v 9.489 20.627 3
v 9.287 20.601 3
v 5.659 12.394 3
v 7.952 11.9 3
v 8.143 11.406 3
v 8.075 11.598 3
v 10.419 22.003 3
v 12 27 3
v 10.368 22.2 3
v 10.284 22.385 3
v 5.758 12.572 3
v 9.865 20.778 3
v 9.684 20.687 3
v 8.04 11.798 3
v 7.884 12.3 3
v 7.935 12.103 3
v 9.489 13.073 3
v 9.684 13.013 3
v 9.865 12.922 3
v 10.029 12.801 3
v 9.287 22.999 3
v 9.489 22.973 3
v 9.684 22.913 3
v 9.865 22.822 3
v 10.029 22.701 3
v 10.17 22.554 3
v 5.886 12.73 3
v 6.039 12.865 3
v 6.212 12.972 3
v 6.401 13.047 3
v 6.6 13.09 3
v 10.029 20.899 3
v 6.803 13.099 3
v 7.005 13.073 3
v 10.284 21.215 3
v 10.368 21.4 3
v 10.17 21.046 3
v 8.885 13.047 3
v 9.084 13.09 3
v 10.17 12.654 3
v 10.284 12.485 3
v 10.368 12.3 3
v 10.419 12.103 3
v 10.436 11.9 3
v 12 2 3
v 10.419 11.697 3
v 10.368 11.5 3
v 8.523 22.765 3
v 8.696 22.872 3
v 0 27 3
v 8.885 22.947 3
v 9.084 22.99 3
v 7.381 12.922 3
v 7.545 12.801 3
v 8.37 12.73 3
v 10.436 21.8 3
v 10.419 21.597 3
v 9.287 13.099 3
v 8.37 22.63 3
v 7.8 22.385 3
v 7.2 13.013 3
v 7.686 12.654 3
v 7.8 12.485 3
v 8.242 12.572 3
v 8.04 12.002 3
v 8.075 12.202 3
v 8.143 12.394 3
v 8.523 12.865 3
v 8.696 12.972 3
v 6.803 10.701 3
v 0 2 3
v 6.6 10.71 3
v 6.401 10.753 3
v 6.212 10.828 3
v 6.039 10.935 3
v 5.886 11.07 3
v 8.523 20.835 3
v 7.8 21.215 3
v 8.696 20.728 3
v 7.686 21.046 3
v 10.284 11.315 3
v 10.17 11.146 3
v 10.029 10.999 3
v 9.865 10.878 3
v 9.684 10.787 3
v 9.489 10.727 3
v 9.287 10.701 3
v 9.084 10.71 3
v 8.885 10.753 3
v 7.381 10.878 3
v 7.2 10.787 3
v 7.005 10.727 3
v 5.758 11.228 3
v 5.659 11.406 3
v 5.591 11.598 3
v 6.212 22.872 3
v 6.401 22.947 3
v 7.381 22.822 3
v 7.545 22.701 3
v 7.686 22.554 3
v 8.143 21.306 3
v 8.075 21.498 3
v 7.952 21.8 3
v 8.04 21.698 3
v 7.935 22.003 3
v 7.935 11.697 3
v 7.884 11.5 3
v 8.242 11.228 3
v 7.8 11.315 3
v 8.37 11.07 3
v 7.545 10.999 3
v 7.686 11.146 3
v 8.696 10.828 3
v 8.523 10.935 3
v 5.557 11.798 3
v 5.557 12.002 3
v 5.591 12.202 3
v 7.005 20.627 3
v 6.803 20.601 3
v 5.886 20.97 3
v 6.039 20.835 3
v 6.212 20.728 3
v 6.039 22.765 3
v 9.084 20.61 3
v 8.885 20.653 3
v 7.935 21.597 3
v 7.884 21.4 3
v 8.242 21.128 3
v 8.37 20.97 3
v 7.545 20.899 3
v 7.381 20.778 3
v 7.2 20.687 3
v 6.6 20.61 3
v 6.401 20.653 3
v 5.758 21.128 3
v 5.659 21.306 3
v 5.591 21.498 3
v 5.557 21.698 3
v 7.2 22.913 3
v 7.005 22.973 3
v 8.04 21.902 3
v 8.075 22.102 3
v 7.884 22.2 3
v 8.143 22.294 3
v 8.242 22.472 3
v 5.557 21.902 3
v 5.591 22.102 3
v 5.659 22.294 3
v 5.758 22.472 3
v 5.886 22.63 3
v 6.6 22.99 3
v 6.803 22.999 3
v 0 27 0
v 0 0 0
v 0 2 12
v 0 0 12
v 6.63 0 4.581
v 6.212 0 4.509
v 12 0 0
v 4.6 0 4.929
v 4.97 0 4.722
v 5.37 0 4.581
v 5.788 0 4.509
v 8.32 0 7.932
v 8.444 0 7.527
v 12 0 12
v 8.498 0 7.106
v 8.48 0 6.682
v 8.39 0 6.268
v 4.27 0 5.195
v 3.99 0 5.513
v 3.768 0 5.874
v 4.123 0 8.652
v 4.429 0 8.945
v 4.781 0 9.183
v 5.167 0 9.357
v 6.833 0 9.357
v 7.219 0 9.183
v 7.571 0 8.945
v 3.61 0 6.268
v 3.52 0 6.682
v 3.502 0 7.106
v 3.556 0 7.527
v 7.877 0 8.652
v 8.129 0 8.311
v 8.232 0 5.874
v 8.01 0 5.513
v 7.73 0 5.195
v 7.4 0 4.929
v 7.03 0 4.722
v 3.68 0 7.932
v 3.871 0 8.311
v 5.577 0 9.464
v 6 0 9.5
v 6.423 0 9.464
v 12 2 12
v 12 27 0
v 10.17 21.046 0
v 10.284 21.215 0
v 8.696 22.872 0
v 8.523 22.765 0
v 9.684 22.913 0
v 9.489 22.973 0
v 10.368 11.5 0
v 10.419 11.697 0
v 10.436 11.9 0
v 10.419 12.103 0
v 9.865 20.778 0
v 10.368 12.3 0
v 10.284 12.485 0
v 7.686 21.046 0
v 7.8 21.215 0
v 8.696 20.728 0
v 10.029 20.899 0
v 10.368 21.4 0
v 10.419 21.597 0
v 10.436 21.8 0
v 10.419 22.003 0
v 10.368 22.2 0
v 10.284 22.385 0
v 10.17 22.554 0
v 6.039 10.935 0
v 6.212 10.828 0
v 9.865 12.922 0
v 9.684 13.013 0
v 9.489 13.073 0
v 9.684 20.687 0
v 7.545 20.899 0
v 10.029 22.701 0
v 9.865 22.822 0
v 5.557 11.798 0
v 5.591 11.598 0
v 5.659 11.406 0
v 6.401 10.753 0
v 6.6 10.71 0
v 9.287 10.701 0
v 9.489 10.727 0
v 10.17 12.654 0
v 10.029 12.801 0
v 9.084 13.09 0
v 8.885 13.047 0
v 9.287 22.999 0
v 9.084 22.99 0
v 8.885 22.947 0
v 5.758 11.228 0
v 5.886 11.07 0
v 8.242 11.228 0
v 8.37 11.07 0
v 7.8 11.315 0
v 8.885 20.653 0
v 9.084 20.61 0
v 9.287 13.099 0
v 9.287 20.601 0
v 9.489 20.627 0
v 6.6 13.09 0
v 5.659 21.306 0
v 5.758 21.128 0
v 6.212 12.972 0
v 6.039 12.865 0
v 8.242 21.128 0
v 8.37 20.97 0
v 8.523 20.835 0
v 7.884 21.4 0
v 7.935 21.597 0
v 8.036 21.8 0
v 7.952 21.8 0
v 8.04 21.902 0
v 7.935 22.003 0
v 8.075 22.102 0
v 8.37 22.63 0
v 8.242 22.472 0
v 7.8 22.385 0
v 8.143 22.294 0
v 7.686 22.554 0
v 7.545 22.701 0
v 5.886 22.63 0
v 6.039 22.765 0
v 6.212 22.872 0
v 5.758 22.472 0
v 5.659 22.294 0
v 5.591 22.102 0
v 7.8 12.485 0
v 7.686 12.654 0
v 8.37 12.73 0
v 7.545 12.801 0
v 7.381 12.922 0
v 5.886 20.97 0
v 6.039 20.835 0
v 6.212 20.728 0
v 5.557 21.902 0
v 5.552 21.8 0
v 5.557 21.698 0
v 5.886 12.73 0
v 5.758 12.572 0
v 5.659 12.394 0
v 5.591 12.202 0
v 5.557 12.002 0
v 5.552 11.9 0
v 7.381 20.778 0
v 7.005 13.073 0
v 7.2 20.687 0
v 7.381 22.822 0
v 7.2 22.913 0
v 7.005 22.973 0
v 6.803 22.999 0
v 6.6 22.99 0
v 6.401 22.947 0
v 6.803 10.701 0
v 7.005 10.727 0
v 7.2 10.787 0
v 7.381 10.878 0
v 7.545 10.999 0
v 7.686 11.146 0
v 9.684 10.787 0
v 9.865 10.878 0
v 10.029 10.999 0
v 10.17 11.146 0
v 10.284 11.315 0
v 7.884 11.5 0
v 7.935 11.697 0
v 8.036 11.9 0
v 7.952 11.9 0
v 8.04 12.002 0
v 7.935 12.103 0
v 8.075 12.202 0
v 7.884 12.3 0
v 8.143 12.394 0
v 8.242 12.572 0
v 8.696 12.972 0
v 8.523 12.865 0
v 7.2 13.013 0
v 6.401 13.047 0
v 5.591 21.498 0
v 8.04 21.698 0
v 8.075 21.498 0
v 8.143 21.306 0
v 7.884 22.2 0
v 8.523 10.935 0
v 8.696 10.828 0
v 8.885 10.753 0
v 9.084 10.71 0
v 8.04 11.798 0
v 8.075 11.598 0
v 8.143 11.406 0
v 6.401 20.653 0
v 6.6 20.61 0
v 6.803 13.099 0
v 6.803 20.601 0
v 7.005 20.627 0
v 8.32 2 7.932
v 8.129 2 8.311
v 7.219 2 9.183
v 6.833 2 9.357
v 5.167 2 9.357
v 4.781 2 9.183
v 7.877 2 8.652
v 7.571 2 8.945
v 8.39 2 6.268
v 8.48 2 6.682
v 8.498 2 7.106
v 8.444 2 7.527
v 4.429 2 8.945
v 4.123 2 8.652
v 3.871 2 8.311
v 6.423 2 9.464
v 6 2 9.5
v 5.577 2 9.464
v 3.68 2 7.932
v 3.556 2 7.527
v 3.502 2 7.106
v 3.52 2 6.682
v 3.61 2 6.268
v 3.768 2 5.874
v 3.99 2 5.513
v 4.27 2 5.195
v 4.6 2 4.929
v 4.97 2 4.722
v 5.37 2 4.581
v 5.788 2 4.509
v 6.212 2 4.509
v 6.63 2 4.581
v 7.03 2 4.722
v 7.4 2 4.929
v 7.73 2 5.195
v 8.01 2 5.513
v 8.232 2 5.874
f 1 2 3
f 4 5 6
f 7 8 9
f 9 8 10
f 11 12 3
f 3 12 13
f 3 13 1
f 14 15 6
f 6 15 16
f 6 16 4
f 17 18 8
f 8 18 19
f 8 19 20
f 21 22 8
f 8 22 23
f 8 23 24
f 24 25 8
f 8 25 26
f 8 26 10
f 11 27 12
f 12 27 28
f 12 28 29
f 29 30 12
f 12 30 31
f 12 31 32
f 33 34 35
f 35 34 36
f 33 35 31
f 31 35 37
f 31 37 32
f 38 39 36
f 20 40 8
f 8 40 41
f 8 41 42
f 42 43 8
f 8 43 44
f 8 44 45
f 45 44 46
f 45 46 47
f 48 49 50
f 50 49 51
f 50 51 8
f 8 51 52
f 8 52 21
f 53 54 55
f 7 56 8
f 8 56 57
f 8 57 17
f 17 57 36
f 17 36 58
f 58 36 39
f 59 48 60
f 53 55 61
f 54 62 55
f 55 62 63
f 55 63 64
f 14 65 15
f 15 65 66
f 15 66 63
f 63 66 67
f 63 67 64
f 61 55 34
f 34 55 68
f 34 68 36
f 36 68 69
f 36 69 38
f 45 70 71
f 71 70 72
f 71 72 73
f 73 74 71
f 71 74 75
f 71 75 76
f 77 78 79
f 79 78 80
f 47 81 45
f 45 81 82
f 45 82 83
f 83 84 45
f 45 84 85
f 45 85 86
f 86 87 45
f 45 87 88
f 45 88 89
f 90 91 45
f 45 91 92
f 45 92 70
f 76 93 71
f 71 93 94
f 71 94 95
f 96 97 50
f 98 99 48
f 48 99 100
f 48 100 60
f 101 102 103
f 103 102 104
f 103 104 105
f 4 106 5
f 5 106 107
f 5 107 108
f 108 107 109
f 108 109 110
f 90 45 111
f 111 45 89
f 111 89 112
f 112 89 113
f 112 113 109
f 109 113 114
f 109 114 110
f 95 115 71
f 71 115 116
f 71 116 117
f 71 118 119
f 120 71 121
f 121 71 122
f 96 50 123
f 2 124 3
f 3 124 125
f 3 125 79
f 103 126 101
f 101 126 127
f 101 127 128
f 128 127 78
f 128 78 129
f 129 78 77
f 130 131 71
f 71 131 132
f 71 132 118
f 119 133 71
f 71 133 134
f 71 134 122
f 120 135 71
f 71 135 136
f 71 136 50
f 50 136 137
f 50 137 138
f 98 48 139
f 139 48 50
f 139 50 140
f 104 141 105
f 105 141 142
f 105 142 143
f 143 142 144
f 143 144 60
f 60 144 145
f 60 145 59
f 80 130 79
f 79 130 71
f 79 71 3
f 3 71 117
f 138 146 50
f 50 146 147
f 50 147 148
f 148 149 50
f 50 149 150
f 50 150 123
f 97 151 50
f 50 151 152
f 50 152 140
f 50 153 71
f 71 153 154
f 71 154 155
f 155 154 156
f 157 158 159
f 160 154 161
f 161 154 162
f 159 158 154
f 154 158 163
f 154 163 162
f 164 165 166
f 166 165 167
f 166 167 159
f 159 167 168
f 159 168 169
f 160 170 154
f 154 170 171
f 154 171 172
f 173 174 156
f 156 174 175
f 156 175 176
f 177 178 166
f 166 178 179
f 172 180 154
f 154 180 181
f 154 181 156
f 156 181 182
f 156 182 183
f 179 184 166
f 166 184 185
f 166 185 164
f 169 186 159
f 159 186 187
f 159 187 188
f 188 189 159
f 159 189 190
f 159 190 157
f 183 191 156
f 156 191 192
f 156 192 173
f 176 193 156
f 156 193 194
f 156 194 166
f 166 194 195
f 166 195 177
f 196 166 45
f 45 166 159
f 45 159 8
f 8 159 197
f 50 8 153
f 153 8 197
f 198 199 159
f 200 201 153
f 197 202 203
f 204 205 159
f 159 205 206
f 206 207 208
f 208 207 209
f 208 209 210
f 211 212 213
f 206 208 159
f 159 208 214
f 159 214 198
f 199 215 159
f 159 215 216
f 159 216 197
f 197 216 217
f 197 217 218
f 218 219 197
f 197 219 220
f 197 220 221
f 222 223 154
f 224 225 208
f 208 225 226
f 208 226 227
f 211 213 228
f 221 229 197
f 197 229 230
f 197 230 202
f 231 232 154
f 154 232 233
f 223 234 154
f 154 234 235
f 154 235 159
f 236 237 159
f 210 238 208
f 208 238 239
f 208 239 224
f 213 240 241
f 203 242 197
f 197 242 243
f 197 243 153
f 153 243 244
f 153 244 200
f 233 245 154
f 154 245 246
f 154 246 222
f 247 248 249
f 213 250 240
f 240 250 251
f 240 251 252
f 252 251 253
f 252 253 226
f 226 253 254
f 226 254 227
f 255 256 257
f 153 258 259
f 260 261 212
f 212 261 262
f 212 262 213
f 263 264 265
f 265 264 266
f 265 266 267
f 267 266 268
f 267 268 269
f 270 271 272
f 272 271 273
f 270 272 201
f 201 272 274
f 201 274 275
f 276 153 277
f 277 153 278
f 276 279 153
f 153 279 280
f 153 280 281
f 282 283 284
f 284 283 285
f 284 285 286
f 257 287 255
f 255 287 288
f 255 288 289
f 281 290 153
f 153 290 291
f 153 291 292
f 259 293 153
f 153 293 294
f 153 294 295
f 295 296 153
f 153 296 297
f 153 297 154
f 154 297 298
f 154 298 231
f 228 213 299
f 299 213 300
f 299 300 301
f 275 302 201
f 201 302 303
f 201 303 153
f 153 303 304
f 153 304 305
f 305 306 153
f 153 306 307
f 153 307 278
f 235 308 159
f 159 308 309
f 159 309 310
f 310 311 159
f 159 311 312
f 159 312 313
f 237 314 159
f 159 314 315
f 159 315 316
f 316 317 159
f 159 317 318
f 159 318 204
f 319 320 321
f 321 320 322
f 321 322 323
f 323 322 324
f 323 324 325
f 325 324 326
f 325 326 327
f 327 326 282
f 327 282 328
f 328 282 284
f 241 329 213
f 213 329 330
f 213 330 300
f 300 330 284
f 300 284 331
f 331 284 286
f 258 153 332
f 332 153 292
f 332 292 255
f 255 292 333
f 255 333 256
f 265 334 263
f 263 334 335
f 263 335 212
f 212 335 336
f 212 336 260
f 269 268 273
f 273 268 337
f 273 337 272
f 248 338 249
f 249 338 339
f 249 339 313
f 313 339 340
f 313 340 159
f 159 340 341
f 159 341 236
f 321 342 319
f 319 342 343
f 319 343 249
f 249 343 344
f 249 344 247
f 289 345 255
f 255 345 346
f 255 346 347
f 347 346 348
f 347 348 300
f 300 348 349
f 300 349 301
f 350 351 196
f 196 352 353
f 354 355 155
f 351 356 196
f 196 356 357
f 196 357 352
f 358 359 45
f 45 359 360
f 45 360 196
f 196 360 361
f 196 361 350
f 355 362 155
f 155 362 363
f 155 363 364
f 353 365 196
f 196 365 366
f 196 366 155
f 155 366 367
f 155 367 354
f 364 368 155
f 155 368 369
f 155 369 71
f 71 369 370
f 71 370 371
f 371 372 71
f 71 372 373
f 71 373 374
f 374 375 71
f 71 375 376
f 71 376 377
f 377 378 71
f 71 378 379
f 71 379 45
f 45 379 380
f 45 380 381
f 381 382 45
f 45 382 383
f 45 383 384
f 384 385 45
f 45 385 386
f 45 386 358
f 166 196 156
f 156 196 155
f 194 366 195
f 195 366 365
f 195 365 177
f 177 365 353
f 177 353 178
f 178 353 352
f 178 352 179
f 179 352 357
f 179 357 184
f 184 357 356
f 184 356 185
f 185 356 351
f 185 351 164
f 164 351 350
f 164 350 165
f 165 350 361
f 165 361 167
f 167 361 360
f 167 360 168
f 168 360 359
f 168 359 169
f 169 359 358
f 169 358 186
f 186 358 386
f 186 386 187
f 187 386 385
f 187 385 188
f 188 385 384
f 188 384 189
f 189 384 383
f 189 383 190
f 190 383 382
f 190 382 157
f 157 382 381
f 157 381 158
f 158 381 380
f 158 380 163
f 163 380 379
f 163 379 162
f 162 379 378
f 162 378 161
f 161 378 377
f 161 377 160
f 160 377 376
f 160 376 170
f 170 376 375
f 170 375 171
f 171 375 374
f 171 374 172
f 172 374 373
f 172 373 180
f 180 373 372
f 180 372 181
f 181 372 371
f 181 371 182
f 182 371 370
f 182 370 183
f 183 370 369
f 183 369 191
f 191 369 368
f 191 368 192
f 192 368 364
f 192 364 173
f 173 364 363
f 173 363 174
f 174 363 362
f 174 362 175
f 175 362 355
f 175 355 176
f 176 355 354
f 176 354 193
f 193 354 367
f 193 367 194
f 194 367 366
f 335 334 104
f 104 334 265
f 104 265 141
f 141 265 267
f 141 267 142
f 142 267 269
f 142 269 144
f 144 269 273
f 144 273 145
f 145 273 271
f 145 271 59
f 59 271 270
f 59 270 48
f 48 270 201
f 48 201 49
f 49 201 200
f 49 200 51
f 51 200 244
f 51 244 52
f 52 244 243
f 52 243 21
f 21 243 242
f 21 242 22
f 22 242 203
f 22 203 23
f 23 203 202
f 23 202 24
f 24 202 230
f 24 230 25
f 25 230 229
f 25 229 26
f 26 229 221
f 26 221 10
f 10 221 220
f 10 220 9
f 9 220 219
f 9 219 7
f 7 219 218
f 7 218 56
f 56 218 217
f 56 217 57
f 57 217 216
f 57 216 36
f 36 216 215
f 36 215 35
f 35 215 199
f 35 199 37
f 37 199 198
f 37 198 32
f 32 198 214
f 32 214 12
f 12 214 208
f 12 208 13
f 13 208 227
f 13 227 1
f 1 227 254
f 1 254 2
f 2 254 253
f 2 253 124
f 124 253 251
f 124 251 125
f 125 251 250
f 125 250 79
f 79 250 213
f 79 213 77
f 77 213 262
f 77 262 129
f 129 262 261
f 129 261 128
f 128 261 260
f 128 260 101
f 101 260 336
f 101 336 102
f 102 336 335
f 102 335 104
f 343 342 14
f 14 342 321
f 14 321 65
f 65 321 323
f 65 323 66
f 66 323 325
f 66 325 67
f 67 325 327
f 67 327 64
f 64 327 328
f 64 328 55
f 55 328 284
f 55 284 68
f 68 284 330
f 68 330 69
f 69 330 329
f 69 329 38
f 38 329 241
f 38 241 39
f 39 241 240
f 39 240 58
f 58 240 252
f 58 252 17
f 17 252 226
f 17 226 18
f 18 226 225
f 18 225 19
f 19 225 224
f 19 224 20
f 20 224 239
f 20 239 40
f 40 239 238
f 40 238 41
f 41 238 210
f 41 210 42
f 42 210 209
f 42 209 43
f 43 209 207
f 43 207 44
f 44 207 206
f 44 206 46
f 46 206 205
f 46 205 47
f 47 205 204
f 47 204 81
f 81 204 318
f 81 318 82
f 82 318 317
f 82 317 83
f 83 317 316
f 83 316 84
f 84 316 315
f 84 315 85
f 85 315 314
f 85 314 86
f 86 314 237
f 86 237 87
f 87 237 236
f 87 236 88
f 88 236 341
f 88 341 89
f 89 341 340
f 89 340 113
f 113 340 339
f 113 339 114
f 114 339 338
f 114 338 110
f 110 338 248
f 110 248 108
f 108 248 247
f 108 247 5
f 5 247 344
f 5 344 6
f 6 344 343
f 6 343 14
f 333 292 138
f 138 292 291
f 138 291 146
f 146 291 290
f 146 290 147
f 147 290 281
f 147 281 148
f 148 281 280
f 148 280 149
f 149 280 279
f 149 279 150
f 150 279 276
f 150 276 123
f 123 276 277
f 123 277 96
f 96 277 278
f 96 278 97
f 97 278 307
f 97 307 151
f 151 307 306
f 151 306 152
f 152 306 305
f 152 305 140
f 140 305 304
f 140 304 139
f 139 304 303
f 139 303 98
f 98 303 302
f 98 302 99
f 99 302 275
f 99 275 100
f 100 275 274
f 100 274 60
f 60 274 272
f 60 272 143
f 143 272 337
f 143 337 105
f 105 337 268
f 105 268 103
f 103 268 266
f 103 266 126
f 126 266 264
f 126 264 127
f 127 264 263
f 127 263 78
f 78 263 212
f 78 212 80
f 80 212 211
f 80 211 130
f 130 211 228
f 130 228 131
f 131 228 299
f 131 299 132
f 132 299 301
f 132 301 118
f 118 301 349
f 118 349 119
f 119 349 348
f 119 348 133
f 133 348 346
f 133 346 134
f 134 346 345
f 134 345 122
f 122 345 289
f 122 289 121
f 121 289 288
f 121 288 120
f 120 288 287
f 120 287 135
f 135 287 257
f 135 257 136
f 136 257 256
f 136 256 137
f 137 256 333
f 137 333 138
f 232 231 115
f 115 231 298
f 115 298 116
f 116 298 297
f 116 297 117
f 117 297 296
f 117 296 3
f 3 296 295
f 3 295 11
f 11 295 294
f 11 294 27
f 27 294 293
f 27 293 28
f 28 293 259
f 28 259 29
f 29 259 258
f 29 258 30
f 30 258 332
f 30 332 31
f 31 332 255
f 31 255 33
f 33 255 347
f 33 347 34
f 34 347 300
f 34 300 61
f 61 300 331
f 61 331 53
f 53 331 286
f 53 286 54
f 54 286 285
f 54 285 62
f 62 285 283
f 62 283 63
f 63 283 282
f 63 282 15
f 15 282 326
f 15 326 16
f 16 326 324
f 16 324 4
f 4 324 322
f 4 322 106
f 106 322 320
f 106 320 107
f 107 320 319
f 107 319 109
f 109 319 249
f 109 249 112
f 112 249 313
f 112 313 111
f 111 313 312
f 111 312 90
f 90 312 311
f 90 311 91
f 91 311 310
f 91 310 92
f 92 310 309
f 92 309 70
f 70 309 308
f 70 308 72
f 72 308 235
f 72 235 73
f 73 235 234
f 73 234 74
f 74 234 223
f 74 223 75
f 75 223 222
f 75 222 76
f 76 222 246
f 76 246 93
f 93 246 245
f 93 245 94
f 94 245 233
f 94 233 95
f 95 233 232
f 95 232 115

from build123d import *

# Parameters (mm, degrees)
SKETCH1_W           = 12
SKETCH1_H           = 27
BOSS_EXTRUDE1_DEPTH = 3
SKETCH2_W           = 12
SKETCH2_H           = 2
BOSS_EXTRUDE2_DEPTH = 9
SKETCH3_R           = 2.5
CUT_EXTRUDE1_DEPTH  = 10
SKETCH4_R           = 1.2
CUT_EXTRUDE2_DEPTH  = 10
SKETCH5_R           = 1.2
CUT_EXTRUDE3_DEPTH  = 10


with BuildPart() as part:
    # Sketch1 → Boss-Extrude1 (new body)
    with BuildSketch(Plane.XY):
        with Locations((6, 13.5)):
            Rectangle(SKETCH1_W, SKETCH1_H)
    extrude(amount=BOSS_EXTRUDE1_DEPTH)

    # Sketch2 → Boss-Extrude2 (add)
    with BuildSketch(Plane.XY.offset(3)):
        with Locations((6, 1)):
            Rectangle(SKETCH2_W, SKETCH2_H)
    extrude(amount=BOSS_EXTRUDE2_DEPTH)

    # Sketch3 → Cut-Extrude1 (cut)
    with BuildSketch(Plane(origin=(0, 2, 0), x_dir=(1, 0, 0), z_dir=(0, 1, 0))):
        with Locations((6, -7)):
            Circle(SKETCH3_R)
    extrude(amount=-CUT_EXTRUDE1_DEPTH, mode=Mode.SUBTRACT)

    # Sketch4 → Cut-Extrude2 (cut)
    with BuildSketch(Plane.XY.offset(3)):
        with Locations((9.236141261, 11.9)):
            Circle(SKETCH4_R)
        with Locations((9.236141261, 21.8)):
            Circle(SKETCH4_R)
    extrude(amount=-CUT_EXTRUDE2_DEPTH, mode=Mode.SUBTRACT)

    # Sketch5 → Cut-Extrude3 (cut)
    with BuildSketch(Plane.XY.offset(3)):
        with Locations((6.752182316, 11.9)):
            Circle(SKETCH5_R)
        with Locations((6.752182316, 21.8)):
            Circle(SKETCH5_R)
    extrude(amount=-CUT_EXTRUDE3_DEPTH, mode=Mode.SUBTRACT)


solid = part.part
